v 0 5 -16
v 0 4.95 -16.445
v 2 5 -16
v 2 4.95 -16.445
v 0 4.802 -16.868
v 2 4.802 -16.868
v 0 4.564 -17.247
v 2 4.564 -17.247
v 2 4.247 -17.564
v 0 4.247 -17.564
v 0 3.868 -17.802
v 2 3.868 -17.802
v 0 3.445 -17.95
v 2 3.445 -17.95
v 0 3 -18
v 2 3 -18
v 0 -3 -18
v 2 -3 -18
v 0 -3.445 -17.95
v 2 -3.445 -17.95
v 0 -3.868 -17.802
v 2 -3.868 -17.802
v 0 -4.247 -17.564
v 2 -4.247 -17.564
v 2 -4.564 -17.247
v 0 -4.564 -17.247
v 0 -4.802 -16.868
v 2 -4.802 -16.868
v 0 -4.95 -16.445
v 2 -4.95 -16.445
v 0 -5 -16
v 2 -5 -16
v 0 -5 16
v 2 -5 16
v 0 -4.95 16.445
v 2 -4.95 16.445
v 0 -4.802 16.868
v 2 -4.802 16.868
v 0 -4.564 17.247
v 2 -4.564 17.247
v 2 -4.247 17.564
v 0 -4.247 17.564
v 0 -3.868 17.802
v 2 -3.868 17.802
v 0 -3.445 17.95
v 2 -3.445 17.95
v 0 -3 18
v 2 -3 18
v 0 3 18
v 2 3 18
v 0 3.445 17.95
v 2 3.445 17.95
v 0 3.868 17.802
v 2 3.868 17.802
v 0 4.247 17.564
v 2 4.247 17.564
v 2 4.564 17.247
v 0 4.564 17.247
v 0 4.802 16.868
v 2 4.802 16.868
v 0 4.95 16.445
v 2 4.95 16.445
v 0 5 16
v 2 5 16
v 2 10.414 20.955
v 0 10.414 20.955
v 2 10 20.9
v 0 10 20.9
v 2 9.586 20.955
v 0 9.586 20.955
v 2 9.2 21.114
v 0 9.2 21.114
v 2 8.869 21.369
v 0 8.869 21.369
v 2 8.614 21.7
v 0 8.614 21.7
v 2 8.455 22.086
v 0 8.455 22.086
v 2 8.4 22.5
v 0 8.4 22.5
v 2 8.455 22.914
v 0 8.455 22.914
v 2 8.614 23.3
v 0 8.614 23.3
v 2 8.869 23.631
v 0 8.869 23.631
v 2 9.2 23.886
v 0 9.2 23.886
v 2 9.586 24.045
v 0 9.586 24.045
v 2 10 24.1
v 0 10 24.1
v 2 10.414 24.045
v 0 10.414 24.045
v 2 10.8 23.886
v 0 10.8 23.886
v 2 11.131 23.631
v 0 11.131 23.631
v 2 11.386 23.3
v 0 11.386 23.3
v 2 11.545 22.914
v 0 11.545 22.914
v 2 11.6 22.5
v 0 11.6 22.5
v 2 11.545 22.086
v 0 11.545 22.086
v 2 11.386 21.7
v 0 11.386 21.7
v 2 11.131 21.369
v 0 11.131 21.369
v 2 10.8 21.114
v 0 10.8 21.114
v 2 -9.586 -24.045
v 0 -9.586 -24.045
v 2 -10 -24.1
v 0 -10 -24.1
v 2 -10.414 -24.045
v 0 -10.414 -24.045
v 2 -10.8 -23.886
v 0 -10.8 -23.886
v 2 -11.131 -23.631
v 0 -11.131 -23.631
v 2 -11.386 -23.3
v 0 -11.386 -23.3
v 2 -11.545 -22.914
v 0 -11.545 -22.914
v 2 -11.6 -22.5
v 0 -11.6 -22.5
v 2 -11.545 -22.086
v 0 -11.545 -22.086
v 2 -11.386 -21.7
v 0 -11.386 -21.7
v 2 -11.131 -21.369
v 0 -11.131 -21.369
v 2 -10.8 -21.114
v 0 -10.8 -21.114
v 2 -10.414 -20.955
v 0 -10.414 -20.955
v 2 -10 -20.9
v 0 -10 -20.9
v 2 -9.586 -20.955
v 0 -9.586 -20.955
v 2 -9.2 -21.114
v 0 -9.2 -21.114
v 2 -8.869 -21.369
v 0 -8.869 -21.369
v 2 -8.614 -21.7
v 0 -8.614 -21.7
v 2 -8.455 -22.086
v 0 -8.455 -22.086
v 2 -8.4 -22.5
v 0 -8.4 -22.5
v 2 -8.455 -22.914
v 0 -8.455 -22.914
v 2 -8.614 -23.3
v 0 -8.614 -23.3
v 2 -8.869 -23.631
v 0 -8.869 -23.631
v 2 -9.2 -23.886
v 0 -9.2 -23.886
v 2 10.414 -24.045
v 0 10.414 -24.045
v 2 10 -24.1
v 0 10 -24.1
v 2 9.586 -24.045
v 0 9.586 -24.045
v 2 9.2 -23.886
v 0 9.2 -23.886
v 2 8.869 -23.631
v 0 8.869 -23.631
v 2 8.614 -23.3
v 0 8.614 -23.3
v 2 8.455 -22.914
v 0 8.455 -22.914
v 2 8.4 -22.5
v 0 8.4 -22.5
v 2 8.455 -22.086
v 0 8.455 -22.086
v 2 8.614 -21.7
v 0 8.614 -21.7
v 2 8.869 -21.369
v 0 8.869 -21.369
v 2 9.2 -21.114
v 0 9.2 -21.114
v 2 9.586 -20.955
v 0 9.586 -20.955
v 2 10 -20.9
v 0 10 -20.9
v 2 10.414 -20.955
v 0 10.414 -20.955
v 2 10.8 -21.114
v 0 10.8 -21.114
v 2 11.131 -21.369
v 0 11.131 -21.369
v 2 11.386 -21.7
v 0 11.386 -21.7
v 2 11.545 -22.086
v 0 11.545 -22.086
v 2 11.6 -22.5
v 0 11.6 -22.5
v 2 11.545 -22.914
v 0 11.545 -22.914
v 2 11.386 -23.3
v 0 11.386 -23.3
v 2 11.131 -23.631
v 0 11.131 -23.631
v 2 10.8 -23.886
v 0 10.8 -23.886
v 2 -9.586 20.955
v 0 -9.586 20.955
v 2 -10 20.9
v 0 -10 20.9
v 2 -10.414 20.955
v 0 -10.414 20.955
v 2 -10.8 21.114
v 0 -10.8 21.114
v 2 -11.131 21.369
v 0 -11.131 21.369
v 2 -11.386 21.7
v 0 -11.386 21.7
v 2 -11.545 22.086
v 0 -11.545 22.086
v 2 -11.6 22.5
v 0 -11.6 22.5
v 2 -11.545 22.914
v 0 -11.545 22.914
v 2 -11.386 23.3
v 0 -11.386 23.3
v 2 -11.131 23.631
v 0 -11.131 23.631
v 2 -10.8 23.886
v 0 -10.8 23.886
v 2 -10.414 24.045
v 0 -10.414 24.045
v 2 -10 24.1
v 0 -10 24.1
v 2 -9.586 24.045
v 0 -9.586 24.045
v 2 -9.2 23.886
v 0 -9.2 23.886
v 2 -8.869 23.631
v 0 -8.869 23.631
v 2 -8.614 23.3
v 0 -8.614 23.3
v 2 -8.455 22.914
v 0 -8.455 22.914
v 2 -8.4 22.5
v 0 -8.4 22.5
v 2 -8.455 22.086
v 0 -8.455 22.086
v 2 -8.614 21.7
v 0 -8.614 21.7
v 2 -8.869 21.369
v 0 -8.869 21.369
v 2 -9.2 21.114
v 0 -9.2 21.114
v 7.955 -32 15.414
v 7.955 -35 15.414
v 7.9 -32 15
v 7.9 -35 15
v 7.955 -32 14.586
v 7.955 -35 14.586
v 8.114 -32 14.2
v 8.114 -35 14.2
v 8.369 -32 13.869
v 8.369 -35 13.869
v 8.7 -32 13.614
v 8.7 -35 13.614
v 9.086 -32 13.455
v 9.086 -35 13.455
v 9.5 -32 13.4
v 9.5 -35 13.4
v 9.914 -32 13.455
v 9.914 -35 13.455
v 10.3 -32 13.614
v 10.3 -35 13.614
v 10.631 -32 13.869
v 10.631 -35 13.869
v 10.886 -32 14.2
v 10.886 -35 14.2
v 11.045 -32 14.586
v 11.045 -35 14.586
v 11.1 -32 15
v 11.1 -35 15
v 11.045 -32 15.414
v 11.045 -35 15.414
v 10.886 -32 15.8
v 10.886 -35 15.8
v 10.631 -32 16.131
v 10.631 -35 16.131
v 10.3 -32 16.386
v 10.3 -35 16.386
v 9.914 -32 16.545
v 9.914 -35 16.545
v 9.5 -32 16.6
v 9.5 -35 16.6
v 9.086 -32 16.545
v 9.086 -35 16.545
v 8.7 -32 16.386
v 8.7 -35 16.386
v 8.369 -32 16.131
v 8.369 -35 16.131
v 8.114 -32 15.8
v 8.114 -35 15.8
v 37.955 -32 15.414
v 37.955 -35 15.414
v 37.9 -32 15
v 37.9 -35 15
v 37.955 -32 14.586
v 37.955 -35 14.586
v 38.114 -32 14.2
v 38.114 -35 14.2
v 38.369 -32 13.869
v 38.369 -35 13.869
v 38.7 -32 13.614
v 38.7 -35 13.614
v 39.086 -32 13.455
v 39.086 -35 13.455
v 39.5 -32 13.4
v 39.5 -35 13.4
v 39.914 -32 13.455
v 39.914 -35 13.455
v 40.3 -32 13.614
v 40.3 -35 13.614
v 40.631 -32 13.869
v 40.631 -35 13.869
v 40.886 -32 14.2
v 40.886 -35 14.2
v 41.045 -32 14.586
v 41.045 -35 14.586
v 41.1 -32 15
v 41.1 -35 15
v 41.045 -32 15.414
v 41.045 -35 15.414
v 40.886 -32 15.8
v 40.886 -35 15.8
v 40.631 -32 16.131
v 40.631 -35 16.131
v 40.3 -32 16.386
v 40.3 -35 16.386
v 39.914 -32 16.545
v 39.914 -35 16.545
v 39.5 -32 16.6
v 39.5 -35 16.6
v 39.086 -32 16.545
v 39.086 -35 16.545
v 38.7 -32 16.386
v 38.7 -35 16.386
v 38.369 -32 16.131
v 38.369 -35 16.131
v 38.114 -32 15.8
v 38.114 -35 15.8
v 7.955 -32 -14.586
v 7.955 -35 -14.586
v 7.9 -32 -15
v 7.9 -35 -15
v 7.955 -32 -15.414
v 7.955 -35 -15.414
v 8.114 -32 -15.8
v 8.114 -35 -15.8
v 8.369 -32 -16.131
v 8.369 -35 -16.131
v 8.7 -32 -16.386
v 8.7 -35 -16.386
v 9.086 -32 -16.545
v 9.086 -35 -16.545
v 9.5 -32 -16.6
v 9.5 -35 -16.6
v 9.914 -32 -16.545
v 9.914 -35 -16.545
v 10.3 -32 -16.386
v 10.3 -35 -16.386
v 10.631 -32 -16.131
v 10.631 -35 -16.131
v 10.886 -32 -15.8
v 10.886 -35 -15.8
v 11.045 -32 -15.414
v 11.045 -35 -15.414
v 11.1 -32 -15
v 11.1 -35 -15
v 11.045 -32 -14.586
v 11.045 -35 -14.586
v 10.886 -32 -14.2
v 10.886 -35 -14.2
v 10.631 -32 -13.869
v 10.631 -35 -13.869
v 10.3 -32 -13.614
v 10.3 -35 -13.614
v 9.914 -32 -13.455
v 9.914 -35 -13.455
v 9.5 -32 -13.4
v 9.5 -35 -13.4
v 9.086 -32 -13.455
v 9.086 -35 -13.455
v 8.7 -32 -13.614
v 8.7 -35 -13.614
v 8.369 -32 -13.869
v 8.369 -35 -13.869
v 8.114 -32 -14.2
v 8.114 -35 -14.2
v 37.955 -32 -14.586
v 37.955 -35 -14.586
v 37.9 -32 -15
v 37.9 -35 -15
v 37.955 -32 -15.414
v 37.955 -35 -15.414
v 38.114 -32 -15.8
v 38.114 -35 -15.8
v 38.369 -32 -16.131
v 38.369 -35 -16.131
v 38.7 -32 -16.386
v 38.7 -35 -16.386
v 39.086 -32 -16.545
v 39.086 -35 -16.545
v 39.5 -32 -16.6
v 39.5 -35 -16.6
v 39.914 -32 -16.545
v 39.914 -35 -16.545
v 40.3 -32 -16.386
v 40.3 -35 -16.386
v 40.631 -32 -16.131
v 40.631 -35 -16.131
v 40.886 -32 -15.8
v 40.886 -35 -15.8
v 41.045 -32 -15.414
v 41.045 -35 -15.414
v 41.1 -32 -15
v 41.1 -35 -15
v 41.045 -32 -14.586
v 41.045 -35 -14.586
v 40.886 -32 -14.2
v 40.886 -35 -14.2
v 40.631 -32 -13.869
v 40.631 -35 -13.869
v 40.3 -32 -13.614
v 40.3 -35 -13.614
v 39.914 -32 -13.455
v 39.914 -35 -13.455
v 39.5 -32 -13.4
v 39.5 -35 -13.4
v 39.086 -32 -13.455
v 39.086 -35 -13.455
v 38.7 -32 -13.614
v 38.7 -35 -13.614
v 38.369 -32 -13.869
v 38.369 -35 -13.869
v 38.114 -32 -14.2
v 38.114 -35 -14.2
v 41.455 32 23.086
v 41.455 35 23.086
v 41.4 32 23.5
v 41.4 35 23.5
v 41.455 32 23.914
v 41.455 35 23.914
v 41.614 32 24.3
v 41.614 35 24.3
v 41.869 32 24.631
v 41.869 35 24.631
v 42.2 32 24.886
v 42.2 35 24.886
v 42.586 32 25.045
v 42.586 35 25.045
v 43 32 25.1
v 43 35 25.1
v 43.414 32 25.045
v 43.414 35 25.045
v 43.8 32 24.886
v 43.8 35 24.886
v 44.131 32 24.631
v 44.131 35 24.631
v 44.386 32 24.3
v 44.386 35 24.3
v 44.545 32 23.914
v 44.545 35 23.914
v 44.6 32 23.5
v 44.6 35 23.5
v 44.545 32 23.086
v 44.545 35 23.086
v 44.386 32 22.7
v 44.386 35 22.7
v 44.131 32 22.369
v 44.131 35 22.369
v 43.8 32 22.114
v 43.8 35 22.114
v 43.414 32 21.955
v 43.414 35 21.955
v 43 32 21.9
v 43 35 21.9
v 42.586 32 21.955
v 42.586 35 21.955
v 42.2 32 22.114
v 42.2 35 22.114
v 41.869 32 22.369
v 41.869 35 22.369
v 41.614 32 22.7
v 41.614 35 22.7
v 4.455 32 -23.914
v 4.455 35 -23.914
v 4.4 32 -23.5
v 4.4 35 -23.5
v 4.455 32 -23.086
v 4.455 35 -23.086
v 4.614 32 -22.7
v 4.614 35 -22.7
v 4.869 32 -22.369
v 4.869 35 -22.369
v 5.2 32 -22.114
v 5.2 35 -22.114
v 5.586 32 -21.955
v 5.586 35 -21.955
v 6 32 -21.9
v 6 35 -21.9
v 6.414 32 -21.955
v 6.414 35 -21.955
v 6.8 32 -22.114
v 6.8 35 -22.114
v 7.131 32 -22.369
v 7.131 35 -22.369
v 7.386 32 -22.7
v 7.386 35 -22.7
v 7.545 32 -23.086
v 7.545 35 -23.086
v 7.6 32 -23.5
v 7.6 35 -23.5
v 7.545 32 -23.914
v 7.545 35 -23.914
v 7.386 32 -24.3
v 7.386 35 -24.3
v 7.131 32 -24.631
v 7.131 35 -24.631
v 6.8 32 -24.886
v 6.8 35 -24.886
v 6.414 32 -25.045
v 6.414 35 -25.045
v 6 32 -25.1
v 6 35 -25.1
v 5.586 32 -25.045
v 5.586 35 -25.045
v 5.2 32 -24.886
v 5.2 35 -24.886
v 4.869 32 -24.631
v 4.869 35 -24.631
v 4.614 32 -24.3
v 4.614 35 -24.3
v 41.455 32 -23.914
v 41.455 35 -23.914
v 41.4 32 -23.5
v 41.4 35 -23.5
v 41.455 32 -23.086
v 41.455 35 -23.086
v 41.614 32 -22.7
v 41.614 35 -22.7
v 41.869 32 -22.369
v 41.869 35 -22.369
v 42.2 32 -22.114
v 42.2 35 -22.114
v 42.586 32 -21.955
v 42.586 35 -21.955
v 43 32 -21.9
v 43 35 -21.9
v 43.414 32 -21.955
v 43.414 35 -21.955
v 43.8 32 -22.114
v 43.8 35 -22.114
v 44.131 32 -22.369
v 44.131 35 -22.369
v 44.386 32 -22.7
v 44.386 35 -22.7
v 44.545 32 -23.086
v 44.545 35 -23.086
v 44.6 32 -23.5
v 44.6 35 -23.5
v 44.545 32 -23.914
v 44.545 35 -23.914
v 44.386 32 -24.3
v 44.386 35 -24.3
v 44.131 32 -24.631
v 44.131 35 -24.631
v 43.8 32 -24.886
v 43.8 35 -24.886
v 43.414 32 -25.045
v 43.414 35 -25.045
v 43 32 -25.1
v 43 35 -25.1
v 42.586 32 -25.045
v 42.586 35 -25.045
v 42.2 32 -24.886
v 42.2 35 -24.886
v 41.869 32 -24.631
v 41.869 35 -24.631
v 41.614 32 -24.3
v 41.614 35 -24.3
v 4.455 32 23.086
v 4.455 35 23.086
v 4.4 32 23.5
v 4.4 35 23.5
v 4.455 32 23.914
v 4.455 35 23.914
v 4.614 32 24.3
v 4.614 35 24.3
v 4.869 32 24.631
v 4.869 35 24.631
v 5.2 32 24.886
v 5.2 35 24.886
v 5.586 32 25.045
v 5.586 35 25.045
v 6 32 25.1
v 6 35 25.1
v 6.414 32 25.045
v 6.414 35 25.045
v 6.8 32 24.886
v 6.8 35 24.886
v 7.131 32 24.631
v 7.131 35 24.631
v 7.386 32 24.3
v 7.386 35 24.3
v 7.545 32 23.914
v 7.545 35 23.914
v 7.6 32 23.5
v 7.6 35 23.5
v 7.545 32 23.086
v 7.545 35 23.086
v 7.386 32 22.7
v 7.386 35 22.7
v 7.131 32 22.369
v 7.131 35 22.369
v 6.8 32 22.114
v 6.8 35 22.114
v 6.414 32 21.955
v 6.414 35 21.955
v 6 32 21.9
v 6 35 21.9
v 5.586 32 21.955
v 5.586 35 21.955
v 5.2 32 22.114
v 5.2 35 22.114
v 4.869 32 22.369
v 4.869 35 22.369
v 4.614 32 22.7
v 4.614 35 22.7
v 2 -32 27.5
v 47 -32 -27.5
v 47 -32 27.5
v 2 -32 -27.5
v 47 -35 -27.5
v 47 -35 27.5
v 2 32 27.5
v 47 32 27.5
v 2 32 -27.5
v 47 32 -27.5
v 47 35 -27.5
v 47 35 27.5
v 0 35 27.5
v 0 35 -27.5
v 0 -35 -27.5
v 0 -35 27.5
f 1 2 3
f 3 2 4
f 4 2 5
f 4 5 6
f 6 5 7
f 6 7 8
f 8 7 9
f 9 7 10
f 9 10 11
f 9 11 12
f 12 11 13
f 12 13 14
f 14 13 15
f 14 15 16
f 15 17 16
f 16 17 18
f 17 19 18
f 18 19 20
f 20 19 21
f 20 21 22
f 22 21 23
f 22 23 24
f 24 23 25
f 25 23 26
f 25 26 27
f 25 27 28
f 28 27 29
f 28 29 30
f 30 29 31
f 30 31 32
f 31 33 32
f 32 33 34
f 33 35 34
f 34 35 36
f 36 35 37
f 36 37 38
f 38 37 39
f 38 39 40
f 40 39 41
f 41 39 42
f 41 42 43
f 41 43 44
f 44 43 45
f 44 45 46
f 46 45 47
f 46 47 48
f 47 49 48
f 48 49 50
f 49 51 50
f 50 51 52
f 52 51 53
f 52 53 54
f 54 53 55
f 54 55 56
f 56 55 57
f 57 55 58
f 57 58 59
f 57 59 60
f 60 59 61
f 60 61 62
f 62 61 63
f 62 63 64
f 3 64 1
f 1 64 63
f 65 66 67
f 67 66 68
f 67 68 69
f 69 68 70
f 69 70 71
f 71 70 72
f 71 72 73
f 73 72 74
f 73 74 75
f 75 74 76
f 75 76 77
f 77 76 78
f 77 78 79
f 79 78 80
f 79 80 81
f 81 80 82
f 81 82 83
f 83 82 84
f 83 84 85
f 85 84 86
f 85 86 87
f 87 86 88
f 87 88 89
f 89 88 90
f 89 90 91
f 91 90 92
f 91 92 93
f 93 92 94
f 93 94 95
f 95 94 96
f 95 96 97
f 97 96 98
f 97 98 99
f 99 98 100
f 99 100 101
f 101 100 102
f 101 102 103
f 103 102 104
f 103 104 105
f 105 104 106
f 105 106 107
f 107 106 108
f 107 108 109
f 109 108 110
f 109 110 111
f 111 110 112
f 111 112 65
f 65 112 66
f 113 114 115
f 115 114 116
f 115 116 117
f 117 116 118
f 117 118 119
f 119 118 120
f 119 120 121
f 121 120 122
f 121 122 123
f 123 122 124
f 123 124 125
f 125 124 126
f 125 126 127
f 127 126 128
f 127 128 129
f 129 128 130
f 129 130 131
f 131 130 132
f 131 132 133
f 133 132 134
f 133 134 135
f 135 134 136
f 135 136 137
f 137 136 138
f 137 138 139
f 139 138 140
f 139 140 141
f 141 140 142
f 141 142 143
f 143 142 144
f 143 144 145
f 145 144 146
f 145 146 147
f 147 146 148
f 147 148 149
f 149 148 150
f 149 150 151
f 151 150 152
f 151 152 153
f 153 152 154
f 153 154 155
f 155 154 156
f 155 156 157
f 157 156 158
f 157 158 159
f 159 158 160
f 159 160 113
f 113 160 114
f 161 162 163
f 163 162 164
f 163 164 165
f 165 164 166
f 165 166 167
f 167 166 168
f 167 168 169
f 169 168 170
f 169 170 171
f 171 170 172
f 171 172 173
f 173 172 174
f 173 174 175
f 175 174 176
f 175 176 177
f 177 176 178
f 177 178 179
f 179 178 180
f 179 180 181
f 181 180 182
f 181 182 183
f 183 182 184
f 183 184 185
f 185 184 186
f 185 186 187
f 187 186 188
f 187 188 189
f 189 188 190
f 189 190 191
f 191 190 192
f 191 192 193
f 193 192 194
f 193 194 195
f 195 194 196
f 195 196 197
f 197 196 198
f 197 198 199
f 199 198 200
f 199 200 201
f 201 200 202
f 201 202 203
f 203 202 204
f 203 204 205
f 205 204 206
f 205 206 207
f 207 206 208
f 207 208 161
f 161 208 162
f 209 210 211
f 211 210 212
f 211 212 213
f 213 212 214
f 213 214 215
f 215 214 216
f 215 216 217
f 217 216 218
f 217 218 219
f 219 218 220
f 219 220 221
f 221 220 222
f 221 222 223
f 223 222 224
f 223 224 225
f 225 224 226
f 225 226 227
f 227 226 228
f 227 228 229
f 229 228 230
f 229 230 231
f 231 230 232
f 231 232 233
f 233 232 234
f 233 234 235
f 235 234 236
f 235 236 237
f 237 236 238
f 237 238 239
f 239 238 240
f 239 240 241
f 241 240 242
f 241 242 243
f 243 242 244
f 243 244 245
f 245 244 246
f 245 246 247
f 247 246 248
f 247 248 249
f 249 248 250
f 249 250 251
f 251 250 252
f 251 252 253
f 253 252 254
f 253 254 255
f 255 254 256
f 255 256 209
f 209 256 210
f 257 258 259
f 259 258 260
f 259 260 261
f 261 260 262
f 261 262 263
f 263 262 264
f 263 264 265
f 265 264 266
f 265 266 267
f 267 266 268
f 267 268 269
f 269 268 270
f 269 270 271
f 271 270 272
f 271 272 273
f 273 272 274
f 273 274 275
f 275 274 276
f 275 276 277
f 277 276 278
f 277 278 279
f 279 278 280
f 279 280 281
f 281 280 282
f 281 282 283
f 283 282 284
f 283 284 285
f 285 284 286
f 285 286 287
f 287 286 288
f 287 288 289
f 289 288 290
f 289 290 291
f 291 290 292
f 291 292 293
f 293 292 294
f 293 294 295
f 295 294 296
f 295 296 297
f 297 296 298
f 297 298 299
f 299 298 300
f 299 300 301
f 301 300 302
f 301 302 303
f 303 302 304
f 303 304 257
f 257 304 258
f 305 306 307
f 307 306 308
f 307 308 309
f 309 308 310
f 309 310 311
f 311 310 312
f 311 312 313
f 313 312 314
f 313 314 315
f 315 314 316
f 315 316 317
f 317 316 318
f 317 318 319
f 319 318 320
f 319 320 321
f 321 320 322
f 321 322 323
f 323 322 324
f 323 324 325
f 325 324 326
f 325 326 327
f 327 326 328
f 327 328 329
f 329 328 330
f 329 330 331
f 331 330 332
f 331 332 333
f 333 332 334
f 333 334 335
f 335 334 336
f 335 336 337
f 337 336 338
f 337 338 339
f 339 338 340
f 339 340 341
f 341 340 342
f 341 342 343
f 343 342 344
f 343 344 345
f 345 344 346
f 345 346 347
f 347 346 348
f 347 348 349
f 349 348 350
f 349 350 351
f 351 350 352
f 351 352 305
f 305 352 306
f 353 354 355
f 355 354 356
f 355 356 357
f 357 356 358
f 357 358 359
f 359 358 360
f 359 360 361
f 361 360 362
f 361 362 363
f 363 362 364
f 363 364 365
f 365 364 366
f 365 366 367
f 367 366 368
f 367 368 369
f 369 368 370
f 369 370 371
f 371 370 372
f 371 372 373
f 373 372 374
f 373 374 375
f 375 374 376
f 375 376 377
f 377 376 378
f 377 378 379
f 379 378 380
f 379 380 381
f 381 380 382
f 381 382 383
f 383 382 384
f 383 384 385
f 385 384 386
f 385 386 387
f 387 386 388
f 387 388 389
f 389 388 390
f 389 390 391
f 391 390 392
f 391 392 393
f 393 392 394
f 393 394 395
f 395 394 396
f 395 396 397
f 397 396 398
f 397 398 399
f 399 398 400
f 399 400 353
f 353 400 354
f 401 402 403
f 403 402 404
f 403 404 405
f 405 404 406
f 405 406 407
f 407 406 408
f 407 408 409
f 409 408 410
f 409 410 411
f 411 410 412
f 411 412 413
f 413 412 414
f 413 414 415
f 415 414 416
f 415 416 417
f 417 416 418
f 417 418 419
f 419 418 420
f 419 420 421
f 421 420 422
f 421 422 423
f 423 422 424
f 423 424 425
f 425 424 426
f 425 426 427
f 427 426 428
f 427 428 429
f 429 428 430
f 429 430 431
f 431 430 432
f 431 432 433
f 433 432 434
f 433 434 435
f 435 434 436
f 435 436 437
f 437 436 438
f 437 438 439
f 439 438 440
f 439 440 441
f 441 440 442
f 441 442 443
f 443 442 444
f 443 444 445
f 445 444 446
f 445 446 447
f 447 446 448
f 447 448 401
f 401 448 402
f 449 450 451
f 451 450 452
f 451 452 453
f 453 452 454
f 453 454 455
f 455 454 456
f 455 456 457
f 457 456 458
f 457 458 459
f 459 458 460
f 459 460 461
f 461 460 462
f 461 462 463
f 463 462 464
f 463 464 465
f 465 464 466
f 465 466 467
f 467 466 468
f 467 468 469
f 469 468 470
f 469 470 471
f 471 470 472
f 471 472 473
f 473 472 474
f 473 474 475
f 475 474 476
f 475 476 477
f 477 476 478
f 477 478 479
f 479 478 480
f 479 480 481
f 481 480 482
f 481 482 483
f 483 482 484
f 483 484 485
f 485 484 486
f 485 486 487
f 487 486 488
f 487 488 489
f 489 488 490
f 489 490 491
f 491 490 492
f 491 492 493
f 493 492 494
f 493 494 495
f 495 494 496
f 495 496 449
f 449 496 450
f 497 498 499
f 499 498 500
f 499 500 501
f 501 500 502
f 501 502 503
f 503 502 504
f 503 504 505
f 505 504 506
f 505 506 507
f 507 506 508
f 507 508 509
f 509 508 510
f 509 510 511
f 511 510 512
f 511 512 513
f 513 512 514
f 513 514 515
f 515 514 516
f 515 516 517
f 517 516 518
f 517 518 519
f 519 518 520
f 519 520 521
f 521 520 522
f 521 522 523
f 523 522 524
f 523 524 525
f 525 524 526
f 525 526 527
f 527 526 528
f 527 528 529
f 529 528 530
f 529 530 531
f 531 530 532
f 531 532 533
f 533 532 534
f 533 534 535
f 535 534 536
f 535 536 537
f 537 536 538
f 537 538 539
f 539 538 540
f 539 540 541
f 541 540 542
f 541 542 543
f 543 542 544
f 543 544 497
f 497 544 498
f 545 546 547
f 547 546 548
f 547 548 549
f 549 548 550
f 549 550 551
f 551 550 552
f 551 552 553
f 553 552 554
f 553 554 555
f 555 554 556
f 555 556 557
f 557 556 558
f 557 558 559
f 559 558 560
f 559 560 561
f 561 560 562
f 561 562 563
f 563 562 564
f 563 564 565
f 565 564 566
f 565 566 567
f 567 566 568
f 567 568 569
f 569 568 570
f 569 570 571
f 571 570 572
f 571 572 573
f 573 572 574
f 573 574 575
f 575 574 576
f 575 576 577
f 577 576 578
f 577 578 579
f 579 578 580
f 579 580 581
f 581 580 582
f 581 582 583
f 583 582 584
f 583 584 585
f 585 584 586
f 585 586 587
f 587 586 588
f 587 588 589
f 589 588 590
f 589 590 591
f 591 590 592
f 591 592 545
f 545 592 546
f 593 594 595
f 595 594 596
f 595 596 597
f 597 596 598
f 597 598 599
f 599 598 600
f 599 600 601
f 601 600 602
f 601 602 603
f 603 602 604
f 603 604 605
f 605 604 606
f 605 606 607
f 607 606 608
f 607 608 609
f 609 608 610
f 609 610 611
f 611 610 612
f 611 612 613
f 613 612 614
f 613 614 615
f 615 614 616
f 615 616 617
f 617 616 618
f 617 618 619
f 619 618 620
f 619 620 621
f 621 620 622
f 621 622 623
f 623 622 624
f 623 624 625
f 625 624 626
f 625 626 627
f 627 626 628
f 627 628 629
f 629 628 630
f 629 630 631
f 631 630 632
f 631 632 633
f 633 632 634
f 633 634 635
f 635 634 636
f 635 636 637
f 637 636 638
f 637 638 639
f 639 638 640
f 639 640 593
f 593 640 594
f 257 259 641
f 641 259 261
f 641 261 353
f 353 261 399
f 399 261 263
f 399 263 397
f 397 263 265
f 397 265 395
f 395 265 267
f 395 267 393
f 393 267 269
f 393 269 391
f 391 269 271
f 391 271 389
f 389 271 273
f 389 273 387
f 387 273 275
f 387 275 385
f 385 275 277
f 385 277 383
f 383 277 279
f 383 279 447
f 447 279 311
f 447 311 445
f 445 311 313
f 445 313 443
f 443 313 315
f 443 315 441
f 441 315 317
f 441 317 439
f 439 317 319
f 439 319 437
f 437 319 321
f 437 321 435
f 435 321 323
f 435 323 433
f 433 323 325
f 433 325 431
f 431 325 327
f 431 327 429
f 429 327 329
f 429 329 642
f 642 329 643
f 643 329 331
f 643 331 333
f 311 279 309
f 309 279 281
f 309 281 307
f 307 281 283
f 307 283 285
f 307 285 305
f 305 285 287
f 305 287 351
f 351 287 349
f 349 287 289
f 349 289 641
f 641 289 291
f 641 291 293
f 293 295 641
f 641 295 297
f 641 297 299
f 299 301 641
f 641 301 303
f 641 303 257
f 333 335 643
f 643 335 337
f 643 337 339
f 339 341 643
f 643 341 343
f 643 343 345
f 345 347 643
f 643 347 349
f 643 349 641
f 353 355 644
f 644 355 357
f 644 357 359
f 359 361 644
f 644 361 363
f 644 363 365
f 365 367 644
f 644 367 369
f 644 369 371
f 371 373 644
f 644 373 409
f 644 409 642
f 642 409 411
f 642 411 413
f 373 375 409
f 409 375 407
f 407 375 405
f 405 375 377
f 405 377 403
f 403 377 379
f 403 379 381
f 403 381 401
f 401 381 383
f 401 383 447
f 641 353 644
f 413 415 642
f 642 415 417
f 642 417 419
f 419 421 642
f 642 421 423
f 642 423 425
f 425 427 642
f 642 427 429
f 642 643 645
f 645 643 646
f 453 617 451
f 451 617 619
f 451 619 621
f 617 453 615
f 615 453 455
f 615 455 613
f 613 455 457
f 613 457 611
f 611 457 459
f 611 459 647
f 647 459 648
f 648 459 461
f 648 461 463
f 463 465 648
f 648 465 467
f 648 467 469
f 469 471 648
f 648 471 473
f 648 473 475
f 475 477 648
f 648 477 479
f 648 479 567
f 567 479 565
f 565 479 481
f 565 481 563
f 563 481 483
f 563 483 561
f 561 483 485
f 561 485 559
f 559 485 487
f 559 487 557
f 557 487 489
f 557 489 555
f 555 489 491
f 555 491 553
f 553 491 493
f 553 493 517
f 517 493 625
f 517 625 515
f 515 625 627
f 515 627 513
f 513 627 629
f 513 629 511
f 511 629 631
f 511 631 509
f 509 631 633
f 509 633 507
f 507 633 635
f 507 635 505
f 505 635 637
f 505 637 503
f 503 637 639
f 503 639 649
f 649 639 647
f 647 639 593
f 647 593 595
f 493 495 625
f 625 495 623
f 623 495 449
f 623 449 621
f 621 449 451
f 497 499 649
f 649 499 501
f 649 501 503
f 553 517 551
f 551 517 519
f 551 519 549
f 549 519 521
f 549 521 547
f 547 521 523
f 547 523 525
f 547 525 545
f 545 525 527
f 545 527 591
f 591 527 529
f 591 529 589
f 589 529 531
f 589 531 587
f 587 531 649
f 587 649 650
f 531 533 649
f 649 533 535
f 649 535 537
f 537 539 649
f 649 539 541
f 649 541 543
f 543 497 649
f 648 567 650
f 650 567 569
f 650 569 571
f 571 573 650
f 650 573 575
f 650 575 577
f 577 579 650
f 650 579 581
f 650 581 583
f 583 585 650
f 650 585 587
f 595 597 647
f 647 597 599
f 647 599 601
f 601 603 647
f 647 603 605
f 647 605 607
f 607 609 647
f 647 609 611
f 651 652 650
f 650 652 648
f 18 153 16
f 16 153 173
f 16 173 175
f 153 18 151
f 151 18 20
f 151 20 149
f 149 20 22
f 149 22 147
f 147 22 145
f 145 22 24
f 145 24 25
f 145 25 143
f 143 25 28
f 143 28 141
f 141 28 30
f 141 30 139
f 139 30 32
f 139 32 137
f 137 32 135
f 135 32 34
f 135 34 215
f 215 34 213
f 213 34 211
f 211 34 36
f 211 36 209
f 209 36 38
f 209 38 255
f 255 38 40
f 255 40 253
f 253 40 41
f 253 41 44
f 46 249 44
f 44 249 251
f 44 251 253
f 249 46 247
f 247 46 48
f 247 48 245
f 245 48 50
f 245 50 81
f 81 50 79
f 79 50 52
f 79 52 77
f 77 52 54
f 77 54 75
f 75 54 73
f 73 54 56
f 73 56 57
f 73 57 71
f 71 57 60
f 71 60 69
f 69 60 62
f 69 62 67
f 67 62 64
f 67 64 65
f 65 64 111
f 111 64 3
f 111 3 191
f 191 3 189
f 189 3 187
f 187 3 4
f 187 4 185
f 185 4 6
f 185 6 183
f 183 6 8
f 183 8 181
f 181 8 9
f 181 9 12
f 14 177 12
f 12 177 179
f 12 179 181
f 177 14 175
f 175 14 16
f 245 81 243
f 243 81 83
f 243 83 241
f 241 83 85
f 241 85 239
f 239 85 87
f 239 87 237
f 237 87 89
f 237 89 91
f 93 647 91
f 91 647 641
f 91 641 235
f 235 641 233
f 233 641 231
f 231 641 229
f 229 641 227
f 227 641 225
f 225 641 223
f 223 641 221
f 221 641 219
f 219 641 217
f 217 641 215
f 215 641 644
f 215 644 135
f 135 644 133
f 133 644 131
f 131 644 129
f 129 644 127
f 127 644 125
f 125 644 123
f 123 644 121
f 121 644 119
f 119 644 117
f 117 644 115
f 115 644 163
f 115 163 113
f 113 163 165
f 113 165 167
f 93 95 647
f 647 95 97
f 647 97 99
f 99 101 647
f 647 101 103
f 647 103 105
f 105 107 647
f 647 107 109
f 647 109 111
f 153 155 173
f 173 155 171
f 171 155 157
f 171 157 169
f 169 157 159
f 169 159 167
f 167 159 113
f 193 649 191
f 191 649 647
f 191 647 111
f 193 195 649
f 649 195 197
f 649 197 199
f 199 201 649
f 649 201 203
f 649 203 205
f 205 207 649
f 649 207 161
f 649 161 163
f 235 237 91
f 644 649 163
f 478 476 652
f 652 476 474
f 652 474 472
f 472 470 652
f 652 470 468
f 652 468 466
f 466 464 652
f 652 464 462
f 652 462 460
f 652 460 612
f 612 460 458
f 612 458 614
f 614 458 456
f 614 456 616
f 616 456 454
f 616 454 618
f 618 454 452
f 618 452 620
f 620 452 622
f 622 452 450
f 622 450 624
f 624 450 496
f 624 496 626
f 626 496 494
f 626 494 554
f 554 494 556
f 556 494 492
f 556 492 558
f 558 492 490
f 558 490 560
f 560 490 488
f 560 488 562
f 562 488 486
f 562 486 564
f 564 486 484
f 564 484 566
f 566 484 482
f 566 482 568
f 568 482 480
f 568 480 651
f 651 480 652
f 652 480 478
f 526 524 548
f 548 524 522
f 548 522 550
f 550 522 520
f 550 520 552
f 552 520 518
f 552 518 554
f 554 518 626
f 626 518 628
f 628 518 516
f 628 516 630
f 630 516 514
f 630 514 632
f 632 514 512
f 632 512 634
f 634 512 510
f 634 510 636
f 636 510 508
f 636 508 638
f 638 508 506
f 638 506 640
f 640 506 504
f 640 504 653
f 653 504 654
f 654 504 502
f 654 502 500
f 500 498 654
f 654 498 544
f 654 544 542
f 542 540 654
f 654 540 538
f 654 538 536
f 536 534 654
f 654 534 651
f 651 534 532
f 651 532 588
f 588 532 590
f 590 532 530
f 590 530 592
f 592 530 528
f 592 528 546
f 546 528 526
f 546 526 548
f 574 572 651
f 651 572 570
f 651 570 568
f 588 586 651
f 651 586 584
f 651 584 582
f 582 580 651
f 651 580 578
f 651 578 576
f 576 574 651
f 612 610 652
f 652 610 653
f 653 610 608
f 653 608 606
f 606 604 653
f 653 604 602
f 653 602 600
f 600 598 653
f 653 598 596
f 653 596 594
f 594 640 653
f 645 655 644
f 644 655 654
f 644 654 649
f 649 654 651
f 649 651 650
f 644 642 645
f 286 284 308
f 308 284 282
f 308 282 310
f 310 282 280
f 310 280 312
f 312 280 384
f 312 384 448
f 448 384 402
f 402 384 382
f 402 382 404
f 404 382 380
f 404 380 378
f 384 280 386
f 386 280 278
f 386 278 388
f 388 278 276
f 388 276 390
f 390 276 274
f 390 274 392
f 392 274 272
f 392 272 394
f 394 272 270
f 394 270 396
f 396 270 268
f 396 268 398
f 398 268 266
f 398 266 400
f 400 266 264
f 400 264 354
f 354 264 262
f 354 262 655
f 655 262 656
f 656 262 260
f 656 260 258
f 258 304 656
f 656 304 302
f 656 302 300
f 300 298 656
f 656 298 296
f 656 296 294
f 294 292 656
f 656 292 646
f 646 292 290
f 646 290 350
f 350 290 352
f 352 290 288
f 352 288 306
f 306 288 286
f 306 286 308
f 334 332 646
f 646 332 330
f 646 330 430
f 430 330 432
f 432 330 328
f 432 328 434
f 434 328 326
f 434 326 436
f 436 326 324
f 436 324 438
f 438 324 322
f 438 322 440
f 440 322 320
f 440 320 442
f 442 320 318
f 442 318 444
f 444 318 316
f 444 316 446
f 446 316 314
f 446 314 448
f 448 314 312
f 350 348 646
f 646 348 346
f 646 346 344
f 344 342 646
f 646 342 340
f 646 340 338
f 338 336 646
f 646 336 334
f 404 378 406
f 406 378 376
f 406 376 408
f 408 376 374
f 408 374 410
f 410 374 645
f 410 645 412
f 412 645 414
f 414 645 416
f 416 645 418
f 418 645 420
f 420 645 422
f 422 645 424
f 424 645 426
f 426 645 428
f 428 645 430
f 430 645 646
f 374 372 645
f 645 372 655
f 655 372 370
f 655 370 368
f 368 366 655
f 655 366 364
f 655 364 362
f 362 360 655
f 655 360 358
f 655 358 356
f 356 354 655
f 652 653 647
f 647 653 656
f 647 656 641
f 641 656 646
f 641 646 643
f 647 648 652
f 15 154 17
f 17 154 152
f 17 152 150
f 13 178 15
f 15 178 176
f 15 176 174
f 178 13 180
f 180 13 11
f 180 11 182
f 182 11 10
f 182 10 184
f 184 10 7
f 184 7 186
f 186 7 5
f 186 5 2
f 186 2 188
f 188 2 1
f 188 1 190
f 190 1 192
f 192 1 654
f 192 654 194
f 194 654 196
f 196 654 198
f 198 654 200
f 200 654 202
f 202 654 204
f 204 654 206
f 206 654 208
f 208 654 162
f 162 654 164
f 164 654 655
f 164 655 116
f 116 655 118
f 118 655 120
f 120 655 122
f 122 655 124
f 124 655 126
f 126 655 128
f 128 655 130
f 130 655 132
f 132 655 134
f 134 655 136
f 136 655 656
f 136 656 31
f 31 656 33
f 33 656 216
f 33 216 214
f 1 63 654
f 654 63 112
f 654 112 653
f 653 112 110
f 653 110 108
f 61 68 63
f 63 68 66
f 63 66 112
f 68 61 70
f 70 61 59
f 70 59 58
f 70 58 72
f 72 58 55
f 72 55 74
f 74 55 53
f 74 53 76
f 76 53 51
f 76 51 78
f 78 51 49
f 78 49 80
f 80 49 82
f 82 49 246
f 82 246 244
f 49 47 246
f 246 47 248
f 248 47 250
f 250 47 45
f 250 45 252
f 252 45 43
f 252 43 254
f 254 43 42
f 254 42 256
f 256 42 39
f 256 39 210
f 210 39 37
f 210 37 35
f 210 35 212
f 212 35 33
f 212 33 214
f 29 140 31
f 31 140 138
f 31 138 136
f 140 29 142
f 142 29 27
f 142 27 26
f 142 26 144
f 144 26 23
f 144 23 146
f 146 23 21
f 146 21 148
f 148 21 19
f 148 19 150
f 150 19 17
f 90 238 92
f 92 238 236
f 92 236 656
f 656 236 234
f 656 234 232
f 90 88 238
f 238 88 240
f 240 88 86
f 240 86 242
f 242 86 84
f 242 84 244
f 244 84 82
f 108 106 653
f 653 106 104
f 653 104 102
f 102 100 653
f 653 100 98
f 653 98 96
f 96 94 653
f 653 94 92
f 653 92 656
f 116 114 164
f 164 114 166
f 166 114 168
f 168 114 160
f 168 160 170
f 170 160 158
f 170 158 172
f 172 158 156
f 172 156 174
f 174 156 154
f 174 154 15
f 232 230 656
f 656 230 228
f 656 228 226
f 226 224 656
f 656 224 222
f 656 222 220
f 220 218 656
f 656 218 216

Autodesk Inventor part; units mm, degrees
ref_plane "YZ Plane" through (0, 0, 0) normal (1, 0, 0) x (0, 1, 0)
ref_plane "XZ Plane" through (0, 0, 0) normal (0, 1, 0) x (-1, 0, 0)
ref_plane "XY Plane" through (0, 0, 0) normal (0, 0, 1) x (1, 0, 0)
sketch "Skizze2" plane through (0, 0, 0) normal (1, 0, 0) x (0, 1, 0)
  line L0 (-49, 0) -> (49, 0) projected
  line L1 (0, -38.5) -> (0, 38.5) projected
  line L2 (35, 27.5) -> (-35, 27.5)
  line L3 (-35, 27.5) -> (-35, -27.5)
  line L4 (-35, -27.5) -> (35, -27.5)
  line L5 (35, -27.5) -> (35, 27.5)
  dimension "d5" = 70
  dimension "d6" = 55
extrude "Extrusion1" add sketch "Skizze2" along normal blind 2
sketch "Skizze3" plane through (2, 0, 0) normal (1, 0, 0) x (0, 0, -1)
  line L0 (-27.5, 35) -> (-27.5, -35) projected
  line L1 (27.5, -35) -> (27.5, 35) projected
  line L2 (-27.5, -35) -> (27.5, -35)
  line L3 (27.5, -35) -> (27.5, -32)
  line L4 (27.5, -32) -> (-27.5, -32)
  line L5 (-27.5, -32) -> (-27.5, -35)
  line L6 (27.5, 35) -> (-27.5, 35) projected
  line L7 (-27.5, 35) -> (27.5, 35)
  line L8 (27.5, 35) -> (27.5, 32)
  line L9 (27.5, 32) -> (-27.5, 32)
  line L10 (-27.5, 32) -> (-27.5, 35)
  point P0 (0, 0)
  point P1 (-27.5, -32)
  point P2 (-27.5, 32)
  point P3 (27.5, 32)
  dimension "d9" = 3
  dimension "d10" = 3
extrude "Extrusion2" add sketch "Skizze3" along normal blind 45 contours L6 L1 L9 L0 | L4 L1 L2 L0
sketch "Skizze5" plane through (0, 35, 27.5) normal (0, 1, 0) x (1, 0, 0)
  line L0 (0, 55) -> (0, 0) projected
  line L1 (0, 0) -> (47, 0) projected
  line L2 (0, 55) -> (47, 55) projected
  line L3 (47, 55) -> (47, 0) projected
  circle A0 centre (6, 4) radius 1.6
  circle A1 centre (6, 51) radius 1.6
  circle A2 centre (43, 51) radius 1.6
  circle A3 centre (43, 4) radius 1.6
  line L4 (56.4, 27.5) -> (-9.4, 27.5) projected
  point P0 (0, 27.5)
  dimension "d38" = 3.2
  dimension "d41" = 3.2
  dimension "d44" = 3.2
  dimension "d47" = 3.2
  dimension "d69" = 6
  dimension "d70" = 4
  dimension "d71" = 4
  dimension "d72" = 6
  dimension "d73" = 4
  dimension "d74" = 4
  dimension "d75" = 4
  dimension "d76" = 4
extrude "Extrusion3" cut sketch "Skizze5" against normal up to surface (3 mm away) contours A0 | A1 | A2 | A3
sketch "Skizze6" plane through (0, -35, -27.5) normal (0, -1, 0) x (1, 0, 0)
  circle A0 centre (39.5, 42.5) radius 1.6
  circle A1 centre (39.5, 12.5) radius 1.6
  circle A2 centre (9.5, 42.5) radius 1.6
  circle A3 centre (9.5, 12.5) radius 1.6
  line L0 (-9.4, 27.5) -> (56.4, 27.5) projected
  line L1 (0, 66) -> (0, -11) projected
  line L2 (47, 55) -> (47, 0) projected
  dimension "d52" = 3.2
  dimension "d53" = 3.2
  dimension "d63" = 3.2
  dimension "d65" = 3.2
  dimension "d84" = 15
  dimension "d86" = 9.5
  dimension "d87" = 9.5
  dimension "d88" = 15
  dimension "d89" = 15
  dimension "d90" = 7.5
  dimension "d91" = 7.5
  dimension "d92" = 15
extrude "Extrusion4" cut sketch "Skizze6" against normal up to surface (3 mm away)
sketch "Skizze7" plane through (0, 0, 0) normal (-1, 0, 0) x (0, 0, 1)
  circle A0 centre (22.5, -10) radius 1.6
  line L0 (27.5, -35) -> (-27.5, -35) projected
  line L1 (27.5, 35) -> (27.5, -35) projected
  circle A1 centre (-22.5, -10) radius 1.6
  line L2 (-27.5, -35) -> (-27.5, 35) projected
  circle A2 centre (22.5, 10) radius 1.6
  circle A3 centre (-22.5, 10) radius 1.6
  line L3 (18, -5) -> (-18, -5)
  line L4 (-18, -5) -> (-18, 5)
  line L5 (-18, 5) -> (18, 5)
  line L6 (18, 5) -> (18, -5)
  line L7 (-38.5, 0) -> (38.5, 0) projected
  line L8 (0, 49) -> (0, -49) projected
  point P0 (0, 0)
  dimension "d93" = 3.2
  dimension "d95" = 5
  dimension "d96" = 3.2
  dimension "d97" = 5
  dimension "d99" = 3.2
  dimension "d100" = 5
  dimension "d101" = 20
  dimension "d102" = 3.2
  dimension "d103" = 5
  dimension "d104" = 20
  dimension "d107" = 36
  dimension "d108" = 10
  dimension "d111" = 10
  dimension "d112" = 10
extrude "Extrusion5" cut sketch "Skizze7" against normal up to surface (2 mm away) contours A0 | A1 | A2 | A3
extrude "Extrusion6" cut sketch "Skizze7" against normal up to surface (2 mm away) contours L8 L7 L6 L3 | L3 L4 L7 L8 | L7 L8 L5 L6 | L7 L4 L5 L8
fillet "Rundung1" radius 2 4 edges at (1, 5, 18) (1, -5, 18) (1, -5, -18) (1, 5, -18)
properties part number "_3D-Druck"
